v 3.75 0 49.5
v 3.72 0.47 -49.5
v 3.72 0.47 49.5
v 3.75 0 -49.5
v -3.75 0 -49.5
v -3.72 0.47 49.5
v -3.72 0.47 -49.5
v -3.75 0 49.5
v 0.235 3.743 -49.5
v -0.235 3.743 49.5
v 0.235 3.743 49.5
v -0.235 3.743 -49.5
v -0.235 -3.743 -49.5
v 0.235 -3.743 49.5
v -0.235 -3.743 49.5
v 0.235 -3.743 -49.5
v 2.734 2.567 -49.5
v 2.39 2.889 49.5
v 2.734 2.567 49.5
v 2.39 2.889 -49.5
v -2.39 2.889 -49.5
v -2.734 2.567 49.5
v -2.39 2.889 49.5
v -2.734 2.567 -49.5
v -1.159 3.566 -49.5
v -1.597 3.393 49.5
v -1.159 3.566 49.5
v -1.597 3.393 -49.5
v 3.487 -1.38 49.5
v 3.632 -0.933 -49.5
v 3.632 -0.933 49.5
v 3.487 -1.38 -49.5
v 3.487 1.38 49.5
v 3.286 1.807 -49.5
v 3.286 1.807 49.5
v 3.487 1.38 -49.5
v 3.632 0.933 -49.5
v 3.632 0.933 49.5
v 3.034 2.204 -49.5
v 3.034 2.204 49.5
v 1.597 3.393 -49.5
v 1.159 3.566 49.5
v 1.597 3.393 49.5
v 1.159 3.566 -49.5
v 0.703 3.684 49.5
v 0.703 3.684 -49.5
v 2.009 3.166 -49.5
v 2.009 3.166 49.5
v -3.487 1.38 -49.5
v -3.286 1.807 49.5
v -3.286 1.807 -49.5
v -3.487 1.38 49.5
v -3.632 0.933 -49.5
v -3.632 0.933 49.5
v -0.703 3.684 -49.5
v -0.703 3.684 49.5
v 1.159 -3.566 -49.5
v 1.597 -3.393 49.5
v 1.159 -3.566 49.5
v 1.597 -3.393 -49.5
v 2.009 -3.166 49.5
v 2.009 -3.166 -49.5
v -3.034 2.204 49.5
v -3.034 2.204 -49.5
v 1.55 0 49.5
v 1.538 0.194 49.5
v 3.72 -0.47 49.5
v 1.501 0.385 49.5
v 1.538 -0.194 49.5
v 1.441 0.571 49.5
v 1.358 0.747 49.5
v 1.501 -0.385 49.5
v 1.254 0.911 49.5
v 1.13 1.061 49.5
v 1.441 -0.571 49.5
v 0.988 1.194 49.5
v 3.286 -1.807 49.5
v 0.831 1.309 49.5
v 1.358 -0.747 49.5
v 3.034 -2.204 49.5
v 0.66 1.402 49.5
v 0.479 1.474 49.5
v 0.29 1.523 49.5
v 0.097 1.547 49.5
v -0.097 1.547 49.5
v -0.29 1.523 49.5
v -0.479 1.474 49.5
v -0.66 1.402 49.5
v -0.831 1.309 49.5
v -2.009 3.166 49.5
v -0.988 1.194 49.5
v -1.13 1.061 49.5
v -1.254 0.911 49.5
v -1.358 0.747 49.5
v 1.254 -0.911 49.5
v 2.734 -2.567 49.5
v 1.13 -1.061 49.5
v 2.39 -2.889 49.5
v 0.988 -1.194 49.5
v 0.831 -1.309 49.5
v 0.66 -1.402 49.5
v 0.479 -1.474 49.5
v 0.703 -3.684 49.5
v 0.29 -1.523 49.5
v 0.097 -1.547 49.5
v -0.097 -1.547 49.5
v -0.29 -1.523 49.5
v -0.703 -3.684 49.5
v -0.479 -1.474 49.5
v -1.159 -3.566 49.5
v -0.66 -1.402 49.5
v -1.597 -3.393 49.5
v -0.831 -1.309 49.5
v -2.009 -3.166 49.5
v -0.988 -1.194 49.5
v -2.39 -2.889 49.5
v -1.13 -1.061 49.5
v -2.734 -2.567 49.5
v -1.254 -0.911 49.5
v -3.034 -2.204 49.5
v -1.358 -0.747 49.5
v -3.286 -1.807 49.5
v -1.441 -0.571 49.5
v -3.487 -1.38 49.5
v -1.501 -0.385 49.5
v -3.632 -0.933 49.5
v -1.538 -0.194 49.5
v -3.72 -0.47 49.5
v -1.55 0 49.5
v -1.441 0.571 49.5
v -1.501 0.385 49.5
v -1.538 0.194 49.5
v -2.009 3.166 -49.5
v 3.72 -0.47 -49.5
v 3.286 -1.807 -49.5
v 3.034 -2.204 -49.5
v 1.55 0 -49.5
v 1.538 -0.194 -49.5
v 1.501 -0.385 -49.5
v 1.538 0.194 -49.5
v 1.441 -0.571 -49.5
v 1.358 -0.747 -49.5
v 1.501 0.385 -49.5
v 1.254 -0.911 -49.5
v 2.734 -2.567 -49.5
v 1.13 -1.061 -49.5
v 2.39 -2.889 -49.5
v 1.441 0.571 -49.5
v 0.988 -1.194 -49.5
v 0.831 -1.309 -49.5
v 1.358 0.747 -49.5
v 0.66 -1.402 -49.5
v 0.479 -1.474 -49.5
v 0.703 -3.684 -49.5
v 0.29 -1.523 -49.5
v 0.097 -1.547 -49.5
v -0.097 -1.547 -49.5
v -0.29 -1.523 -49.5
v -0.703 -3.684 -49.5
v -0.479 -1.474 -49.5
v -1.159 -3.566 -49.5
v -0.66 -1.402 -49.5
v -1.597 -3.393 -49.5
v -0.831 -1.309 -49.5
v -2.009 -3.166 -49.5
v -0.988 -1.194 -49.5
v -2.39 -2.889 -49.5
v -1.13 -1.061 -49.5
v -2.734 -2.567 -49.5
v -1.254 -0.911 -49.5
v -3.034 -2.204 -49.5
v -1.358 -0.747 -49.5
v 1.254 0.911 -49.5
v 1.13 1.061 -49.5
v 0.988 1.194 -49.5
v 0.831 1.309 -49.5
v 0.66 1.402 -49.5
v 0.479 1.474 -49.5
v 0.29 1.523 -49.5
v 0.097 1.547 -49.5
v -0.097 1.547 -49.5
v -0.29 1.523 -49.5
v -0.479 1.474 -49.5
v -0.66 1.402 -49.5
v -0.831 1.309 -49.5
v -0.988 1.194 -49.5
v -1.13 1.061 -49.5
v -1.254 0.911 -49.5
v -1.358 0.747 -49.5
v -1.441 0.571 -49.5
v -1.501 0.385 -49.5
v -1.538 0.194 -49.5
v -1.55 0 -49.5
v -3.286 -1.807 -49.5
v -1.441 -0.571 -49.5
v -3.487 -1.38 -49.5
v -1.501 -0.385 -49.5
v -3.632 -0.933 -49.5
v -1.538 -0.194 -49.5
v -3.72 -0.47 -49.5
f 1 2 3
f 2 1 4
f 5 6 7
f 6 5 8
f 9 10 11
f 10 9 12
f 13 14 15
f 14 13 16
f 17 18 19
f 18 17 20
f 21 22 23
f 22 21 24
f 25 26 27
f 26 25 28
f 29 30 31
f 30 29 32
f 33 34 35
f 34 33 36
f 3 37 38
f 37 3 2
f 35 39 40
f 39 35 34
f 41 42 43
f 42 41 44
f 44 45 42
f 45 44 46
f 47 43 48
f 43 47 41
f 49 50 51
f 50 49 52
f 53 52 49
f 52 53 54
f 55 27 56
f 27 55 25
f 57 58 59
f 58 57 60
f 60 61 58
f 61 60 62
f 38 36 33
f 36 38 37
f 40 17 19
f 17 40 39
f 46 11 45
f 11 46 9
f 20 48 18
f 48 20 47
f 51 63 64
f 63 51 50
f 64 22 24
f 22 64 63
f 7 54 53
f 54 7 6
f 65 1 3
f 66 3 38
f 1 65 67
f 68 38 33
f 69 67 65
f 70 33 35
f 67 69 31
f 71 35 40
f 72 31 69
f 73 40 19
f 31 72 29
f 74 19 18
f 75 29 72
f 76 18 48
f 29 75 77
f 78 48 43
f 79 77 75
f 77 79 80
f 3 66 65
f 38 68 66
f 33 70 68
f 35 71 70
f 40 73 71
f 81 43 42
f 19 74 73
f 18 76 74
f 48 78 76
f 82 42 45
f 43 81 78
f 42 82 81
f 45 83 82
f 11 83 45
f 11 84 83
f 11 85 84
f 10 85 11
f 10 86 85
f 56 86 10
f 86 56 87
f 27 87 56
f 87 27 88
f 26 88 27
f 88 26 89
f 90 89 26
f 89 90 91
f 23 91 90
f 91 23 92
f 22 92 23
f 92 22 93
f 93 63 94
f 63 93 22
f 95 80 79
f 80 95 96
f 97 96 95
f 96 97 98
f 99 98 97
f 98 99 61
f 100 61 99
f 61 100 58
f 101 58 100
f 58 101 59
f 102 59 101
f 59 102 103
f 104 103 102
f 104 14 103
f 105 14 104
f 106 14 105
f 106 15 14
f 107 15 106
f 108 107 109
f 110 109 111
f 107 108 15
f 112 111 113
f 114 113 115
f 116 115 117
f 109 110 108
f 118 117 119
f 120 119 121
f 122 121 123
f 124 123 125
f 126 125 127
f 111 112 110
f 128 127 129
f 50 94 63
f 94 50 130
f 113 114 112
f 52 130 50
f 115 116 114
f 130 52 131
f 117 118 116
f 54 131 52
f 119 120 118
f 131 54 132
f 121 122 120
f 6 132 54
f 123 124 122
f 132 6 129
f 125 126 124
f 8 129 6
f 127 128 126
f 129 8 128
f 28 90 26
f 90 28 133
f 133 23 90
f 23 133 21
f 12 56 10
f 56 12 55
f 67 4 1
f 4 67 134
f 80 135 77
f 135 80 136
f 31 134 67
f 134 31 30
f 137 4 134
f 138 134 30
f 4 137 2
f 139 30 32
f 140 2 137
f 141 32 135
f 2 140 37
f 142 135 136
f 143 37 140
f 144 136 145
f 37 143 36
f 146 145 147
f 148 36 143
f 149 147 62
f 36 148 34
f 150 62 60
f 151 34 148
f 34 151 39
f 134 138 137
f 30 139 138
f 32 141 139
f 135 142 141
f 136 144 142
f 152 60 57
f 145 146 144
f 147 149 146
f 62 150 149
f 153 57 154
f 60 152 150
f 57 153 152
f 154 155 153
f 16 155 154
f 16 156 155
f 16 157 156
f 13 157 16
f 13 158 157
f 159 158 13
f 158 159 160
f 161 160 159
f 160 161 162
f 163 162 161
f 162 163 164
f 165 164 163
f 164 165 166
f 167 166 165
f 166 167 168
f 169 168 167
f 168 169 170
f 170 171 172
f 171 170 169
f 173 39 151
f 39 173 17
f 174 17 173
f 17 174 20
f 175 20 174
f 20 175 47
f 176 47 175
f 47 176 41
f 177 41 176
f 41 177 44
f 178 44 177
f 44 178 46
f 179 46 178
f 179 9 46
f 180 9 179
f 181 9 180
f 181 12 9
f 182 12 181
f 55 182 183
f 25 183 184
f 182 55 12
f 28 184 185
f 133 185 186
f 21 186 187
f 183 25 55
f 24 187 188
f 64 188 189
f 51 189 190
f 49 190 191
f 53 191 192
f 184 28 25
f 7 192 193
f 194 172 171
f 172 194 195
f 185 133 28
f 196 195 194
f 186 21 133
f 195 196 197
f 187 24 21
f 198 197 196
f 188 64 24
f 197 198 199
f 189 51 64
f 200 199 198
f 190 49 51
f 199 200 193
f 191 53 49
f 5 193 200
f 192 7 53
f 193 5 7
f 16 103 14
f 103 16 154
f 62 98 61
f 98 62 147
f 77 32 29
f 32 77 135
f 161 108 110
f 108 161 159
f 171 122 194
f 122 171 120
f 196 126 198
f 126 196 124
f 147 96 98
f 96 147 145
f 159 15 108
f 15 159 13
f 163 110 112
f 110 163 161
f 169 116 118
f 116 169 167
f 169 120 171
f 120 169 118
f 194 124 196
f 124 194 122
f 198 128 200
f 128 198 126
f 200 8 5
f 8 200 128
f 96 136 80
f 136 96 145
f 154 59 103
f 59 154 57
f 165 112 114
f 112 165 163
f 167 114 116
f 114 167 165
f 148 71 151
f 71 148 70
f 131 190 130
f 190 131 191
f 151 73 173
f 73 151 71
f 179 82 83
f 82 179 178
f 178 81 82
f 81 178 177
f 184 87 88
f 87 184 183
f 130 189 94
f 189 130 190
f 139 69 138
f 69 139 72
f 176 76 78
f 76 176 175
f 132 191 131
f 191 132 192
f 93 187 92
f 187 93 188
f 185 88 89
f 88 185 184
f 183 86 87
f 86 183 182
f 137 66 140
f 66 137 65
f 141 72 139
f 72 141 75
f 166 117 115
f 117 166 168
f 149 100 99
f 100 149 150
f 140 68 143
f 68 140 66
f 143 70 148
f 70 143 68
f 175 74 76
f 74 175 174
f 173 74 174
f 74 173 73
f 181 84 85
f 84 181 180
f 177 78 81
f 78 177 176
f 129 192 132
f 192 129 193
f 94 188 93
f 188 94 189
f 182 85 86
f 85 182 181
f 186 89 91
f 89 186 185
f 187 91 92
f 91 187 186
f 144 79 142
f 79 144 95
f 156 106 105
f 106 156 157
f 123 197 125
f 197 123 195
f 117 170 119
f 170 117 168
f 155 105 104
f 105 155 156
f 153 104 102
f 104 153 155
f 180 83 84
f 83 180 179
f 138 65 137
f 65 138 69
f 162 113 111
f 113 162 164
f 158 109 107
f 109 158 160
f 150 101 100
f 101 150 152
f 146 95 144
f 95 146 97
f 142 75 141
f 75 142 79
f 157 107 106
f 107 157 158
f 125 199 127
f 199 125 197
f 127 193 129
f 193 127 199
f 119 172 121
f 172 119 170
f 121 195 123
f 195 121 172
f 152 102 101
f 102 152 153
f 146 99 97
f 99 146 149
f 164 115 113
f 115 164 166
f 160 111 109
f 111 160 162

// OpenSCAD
$fn = 50;


difference() {
	union() {
		translate(v = [0, 0, -49.5000000000]) {
			cylinder(h = 99, r = 3.7500000000);
		}
	}
	union() {
		translate(v = [0, 0, -100.0000000000]) {
			cylinder(h = 200, r = 1.5500000000);
		}
	}
}
